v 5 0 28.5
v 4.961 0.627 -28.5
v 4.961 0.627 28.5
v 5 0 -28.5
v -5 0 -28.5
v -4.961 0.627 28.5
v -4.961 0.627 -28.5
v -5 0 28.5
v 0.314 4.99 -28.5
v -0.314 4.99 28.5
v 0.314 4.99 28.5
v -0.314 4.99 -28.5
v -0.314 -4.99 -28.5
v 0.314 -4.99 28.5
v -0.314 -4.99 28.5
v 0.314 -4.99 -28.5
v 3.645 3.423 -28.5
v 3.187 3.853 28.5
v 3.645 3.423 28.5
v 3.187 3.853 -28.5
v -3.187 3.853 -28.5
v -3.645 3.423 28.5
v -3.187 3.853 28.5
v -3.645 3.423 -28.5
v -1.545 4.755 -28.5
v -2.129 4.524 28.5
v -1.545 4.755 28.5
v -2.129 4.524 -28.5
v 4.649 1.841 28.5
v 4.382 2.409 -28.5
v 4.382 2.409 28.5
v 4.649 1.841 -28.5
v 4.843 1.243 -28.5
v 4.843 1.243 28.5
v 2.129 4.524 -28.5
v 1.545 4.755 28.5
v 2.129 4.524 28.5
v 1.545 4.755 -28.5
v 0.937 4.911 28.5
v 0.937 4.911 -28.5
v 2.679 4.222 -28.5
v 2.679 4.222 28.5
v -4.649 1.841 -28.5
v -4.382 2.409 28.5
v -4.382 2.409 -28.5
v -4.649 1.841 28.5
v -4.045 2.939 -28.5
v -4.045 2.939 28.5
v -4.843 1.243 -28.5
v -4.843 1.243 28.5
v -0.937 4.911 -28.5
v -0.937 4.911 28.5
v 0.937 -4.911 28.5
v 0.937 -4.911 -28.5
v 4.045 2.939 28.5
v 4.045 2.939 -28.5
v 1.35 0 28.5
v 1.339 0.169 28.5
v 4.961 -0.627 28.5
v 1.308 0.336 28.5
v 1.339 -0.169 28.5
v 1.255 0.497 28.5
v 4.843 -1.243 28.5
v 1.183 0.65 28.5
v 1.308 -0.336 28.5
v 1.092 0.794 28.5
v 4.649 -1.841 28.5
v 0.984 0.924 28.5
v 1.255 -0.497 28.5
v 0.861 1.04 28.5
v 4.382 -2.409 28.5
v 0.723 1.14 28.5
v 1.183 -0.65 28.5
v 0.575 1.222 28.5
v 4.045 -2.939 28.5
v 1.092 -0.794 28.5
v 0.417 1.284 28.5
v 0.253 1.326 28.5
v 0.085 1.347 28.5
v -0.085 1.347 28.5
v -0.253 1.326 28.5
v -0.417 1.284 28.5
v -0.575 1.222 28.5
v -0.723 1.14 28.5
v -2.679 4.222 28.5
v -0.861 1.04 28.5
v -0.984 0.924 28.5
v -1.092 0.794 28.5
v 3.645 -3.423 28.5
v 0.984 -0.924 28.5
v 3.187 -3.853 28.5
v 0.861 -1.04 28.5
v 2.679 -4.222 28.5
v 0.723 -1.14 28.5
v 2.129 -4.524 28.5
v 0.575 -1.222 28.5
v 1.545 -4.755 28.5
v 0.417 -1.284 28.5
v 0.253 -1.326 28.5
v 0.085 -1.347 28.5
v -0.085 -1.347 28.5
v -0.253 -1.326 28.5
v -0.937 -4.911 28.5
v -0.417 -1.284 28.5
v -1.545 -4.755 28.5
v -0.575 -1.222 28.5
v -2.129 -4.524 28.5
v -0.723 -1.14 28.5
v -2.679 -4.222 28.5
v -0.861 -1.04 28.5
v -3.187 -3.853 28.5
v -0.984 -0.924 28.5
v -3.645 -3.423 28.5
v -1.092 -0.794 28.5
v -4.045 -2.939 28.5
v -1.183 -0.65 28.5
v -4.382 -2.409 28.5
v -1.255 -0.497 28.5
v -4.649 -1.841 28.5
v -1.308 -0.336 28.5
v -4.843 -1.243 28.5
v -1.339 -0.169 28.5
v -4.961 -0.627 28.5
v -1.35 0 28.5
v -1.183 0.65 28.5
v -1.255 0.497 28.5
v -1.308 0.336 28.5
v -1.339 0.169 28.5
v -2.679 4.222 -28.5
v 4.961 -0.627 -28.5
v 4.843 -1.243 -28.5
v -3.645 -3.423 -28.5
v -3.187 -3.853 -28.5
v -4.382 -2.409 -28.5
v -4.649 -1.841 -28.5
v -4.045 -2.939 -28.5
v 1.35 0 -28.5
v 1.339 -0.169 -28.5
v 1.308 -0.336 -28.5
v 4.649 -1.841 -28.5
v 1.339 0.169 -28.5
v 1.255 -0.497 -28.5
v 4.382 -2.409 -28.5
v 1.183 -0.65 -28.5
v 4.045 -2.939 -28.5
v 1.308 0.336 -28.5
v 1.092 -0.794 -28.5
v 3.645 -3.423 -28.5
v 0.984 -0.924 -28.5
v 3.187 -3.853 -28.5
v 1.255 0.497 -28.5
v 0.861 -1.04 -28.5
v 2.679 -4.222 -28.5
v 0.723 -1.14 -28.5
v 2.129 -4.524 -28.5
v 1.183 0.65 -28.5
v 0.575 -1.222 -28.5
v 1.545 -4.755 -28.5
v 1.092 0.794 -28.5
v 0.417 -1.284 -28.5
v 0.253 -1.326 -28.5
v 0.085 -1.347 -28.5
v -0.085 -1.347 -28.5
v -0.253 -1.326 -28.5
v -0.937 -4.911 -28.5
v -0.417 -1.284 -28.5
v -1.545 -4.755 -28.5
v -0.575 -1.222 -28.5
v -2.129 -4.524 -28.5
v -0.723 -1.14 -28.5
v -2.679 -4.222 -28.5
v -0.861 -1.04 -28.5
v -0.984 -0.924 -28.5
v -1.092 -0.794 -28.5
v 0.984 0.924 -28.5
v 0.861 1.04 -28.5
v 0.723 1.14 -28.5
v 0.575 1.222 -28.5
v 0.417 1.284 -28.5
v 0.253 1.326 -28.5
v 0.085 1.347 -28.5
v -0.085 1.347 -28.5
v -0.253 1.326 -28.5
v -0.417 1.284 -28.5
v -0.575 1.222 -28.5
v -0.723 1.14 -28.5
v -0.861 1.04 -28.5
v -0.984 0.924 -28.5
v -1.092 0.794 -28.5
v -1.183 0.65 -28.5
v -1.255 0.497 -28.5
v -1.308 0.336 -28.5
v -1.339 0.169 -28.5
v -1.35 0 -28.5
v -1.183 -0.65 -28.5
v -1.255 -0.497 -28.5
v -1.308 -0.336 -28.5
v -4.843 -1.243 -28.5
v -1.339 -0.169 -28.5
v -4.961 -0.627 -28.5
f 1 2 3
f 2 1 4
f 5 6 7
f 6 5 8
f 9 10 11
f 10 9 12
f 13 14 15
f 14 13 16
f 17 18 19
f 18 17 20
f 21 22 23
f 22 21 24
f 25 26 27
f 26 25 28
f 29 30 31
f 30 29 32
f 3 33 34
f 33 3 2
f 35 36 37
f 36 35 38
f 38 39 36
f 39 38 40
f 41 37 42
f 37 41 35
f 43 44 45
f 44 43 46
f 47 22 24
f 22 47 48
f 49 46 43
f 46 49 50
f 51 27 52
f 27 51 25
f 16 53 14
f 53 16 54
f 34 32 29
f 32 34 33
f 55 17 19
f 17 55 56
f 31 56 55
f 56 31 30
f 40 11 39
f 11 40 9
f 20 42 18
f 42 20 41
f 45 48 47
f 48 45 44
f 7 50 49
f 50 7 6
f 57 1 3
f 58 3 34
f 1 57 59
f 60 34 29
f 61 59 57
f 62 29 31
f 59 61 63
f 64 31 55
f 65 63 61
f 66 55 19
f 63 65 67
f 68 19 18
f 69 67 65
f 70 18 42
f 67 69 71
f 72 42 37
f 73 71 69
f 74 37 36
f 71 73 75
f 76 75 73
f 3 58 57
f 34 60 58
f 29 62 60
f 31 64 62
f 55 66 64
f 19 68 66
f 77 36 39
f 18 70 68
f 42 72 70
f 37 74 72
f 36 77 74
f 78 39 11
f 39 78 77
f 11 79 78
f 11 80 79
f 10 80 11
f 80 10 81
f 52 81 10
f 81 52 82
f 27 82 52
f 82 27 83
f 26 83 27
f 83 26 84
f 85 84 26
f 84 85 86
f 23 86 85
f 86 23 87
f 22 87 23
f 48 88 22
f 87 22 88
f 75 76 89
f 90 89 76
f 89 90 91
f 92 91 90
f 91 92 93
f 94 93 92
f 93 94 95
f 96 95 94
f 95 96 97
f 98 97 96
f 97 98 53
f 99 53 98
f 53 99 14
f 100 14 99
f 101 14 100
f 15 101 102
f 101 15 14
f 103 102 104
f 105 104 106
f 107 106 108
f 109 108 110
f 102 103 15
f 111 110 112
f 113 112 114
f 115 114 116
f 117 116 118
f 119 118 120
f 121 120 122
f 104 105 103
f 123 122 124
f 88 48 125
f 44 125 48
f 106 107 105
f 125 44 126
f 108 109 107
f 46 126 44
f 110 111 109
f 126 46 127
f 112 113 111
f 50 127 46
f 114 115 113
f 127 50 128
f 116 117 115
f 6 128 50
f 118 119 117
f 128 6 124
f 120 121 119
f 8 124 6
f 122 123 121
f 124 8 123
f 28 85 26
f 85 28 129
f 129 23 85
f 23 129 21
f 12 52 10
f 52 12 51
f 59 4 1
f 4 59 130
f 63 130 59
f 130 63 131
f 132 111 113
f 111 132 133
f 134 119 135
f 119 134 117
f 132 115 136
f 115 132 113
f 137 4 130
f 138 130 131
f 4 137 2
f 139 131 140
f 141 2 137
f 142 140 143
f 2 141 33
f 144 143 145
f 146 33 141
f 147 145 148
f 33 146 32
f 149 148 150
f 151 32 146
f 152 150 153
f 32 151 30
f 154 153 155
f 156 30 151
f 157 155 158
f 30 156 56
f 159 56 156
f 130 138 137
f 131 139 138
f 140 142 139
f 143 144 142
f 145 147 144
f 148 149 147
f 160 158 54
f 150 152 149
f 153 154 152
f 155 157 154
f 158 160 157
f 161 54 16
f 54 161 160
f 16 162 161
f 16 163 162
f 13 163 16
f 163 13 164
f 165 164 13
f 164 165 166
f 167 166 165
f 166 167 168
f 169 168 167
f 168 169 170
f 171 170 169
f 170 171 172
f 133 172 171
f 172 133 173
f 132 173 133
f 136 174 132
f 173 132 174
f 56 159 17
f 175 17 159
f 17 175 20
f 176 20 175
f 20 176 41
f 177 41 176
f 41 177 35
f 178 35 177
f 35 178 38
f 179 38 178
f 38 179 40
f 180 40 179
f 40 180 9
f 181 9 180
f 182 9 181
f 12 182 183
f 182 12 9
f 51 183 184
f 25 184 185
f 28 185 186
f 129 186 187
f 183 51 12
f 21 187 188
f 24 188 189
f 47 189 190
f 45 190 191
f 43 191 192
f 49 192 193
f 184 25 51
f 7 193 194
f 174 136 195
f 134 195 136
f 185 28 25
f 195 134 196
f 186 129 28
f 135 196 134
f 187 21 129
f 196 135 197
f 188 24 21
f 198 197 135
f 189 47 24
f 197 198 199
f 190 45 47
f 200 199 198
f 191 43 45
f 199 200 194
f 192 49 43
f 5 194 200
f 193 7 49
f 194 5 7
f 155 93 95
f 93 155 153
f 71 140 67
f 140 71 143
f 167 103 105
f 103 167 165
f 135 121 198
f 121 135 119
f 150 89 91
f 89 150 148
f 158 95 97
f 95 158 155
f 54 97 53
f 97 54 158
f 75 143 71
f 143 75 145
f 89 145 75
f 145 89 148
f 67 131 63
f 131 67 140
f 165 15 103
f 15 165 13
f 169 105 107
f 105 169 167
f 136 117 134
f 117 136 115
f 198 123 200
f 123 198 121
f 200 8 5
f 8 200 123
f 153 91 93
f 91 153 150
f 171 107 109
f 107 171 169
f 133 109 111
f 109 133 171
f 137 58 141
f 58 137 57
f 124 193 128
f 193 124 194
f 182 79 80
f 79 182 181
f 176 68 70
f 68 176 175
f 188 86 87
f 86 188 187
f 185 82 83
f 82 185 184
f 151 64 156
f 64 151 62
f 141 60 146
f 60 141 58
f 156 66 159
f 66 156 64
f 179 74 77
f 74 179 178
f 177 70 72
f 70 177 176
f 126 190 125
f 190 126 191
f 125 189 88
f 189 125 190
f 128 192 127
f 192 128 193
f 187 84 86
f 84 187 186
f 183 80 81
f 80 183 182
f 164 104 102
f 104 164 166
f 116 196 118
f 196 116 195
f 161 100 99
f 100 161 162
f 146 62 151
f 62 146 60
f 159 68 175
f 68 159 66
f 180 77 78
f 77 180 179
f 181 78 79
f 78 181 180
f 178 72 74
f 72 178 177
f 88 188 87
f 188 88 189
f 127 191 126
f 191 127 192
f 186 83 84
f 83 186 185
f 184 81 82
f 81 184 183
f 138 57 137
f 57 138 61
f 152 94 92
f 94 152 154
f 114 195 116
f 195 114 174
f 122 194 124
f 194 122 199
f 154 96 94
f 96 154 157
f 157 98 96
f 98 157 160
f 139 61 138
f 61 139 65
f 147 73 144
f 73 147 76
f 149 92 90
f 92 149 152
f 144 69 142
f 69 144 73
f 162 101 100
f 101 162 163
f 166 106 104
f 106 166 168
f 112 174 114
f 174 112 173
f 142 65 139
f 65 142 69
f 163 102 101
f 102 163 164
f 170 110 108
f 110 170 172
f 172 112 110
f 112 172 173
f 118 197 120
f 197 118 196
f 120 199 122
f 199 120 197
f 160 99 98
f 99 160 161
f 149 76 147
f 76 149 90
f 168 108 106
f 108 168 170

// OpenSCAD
$fn = 50;


difference() {
	union() {
		translate(v = [0, 0, -28.5000000000]) {
			cylinder(h = 57, r = 5.0000000000);
		}
	}
	union() {
		translate(v = [0, 0, -100.0000000000]) {
			cylinder(h = 200, r = 1.3500000000);
		}
	}
}
